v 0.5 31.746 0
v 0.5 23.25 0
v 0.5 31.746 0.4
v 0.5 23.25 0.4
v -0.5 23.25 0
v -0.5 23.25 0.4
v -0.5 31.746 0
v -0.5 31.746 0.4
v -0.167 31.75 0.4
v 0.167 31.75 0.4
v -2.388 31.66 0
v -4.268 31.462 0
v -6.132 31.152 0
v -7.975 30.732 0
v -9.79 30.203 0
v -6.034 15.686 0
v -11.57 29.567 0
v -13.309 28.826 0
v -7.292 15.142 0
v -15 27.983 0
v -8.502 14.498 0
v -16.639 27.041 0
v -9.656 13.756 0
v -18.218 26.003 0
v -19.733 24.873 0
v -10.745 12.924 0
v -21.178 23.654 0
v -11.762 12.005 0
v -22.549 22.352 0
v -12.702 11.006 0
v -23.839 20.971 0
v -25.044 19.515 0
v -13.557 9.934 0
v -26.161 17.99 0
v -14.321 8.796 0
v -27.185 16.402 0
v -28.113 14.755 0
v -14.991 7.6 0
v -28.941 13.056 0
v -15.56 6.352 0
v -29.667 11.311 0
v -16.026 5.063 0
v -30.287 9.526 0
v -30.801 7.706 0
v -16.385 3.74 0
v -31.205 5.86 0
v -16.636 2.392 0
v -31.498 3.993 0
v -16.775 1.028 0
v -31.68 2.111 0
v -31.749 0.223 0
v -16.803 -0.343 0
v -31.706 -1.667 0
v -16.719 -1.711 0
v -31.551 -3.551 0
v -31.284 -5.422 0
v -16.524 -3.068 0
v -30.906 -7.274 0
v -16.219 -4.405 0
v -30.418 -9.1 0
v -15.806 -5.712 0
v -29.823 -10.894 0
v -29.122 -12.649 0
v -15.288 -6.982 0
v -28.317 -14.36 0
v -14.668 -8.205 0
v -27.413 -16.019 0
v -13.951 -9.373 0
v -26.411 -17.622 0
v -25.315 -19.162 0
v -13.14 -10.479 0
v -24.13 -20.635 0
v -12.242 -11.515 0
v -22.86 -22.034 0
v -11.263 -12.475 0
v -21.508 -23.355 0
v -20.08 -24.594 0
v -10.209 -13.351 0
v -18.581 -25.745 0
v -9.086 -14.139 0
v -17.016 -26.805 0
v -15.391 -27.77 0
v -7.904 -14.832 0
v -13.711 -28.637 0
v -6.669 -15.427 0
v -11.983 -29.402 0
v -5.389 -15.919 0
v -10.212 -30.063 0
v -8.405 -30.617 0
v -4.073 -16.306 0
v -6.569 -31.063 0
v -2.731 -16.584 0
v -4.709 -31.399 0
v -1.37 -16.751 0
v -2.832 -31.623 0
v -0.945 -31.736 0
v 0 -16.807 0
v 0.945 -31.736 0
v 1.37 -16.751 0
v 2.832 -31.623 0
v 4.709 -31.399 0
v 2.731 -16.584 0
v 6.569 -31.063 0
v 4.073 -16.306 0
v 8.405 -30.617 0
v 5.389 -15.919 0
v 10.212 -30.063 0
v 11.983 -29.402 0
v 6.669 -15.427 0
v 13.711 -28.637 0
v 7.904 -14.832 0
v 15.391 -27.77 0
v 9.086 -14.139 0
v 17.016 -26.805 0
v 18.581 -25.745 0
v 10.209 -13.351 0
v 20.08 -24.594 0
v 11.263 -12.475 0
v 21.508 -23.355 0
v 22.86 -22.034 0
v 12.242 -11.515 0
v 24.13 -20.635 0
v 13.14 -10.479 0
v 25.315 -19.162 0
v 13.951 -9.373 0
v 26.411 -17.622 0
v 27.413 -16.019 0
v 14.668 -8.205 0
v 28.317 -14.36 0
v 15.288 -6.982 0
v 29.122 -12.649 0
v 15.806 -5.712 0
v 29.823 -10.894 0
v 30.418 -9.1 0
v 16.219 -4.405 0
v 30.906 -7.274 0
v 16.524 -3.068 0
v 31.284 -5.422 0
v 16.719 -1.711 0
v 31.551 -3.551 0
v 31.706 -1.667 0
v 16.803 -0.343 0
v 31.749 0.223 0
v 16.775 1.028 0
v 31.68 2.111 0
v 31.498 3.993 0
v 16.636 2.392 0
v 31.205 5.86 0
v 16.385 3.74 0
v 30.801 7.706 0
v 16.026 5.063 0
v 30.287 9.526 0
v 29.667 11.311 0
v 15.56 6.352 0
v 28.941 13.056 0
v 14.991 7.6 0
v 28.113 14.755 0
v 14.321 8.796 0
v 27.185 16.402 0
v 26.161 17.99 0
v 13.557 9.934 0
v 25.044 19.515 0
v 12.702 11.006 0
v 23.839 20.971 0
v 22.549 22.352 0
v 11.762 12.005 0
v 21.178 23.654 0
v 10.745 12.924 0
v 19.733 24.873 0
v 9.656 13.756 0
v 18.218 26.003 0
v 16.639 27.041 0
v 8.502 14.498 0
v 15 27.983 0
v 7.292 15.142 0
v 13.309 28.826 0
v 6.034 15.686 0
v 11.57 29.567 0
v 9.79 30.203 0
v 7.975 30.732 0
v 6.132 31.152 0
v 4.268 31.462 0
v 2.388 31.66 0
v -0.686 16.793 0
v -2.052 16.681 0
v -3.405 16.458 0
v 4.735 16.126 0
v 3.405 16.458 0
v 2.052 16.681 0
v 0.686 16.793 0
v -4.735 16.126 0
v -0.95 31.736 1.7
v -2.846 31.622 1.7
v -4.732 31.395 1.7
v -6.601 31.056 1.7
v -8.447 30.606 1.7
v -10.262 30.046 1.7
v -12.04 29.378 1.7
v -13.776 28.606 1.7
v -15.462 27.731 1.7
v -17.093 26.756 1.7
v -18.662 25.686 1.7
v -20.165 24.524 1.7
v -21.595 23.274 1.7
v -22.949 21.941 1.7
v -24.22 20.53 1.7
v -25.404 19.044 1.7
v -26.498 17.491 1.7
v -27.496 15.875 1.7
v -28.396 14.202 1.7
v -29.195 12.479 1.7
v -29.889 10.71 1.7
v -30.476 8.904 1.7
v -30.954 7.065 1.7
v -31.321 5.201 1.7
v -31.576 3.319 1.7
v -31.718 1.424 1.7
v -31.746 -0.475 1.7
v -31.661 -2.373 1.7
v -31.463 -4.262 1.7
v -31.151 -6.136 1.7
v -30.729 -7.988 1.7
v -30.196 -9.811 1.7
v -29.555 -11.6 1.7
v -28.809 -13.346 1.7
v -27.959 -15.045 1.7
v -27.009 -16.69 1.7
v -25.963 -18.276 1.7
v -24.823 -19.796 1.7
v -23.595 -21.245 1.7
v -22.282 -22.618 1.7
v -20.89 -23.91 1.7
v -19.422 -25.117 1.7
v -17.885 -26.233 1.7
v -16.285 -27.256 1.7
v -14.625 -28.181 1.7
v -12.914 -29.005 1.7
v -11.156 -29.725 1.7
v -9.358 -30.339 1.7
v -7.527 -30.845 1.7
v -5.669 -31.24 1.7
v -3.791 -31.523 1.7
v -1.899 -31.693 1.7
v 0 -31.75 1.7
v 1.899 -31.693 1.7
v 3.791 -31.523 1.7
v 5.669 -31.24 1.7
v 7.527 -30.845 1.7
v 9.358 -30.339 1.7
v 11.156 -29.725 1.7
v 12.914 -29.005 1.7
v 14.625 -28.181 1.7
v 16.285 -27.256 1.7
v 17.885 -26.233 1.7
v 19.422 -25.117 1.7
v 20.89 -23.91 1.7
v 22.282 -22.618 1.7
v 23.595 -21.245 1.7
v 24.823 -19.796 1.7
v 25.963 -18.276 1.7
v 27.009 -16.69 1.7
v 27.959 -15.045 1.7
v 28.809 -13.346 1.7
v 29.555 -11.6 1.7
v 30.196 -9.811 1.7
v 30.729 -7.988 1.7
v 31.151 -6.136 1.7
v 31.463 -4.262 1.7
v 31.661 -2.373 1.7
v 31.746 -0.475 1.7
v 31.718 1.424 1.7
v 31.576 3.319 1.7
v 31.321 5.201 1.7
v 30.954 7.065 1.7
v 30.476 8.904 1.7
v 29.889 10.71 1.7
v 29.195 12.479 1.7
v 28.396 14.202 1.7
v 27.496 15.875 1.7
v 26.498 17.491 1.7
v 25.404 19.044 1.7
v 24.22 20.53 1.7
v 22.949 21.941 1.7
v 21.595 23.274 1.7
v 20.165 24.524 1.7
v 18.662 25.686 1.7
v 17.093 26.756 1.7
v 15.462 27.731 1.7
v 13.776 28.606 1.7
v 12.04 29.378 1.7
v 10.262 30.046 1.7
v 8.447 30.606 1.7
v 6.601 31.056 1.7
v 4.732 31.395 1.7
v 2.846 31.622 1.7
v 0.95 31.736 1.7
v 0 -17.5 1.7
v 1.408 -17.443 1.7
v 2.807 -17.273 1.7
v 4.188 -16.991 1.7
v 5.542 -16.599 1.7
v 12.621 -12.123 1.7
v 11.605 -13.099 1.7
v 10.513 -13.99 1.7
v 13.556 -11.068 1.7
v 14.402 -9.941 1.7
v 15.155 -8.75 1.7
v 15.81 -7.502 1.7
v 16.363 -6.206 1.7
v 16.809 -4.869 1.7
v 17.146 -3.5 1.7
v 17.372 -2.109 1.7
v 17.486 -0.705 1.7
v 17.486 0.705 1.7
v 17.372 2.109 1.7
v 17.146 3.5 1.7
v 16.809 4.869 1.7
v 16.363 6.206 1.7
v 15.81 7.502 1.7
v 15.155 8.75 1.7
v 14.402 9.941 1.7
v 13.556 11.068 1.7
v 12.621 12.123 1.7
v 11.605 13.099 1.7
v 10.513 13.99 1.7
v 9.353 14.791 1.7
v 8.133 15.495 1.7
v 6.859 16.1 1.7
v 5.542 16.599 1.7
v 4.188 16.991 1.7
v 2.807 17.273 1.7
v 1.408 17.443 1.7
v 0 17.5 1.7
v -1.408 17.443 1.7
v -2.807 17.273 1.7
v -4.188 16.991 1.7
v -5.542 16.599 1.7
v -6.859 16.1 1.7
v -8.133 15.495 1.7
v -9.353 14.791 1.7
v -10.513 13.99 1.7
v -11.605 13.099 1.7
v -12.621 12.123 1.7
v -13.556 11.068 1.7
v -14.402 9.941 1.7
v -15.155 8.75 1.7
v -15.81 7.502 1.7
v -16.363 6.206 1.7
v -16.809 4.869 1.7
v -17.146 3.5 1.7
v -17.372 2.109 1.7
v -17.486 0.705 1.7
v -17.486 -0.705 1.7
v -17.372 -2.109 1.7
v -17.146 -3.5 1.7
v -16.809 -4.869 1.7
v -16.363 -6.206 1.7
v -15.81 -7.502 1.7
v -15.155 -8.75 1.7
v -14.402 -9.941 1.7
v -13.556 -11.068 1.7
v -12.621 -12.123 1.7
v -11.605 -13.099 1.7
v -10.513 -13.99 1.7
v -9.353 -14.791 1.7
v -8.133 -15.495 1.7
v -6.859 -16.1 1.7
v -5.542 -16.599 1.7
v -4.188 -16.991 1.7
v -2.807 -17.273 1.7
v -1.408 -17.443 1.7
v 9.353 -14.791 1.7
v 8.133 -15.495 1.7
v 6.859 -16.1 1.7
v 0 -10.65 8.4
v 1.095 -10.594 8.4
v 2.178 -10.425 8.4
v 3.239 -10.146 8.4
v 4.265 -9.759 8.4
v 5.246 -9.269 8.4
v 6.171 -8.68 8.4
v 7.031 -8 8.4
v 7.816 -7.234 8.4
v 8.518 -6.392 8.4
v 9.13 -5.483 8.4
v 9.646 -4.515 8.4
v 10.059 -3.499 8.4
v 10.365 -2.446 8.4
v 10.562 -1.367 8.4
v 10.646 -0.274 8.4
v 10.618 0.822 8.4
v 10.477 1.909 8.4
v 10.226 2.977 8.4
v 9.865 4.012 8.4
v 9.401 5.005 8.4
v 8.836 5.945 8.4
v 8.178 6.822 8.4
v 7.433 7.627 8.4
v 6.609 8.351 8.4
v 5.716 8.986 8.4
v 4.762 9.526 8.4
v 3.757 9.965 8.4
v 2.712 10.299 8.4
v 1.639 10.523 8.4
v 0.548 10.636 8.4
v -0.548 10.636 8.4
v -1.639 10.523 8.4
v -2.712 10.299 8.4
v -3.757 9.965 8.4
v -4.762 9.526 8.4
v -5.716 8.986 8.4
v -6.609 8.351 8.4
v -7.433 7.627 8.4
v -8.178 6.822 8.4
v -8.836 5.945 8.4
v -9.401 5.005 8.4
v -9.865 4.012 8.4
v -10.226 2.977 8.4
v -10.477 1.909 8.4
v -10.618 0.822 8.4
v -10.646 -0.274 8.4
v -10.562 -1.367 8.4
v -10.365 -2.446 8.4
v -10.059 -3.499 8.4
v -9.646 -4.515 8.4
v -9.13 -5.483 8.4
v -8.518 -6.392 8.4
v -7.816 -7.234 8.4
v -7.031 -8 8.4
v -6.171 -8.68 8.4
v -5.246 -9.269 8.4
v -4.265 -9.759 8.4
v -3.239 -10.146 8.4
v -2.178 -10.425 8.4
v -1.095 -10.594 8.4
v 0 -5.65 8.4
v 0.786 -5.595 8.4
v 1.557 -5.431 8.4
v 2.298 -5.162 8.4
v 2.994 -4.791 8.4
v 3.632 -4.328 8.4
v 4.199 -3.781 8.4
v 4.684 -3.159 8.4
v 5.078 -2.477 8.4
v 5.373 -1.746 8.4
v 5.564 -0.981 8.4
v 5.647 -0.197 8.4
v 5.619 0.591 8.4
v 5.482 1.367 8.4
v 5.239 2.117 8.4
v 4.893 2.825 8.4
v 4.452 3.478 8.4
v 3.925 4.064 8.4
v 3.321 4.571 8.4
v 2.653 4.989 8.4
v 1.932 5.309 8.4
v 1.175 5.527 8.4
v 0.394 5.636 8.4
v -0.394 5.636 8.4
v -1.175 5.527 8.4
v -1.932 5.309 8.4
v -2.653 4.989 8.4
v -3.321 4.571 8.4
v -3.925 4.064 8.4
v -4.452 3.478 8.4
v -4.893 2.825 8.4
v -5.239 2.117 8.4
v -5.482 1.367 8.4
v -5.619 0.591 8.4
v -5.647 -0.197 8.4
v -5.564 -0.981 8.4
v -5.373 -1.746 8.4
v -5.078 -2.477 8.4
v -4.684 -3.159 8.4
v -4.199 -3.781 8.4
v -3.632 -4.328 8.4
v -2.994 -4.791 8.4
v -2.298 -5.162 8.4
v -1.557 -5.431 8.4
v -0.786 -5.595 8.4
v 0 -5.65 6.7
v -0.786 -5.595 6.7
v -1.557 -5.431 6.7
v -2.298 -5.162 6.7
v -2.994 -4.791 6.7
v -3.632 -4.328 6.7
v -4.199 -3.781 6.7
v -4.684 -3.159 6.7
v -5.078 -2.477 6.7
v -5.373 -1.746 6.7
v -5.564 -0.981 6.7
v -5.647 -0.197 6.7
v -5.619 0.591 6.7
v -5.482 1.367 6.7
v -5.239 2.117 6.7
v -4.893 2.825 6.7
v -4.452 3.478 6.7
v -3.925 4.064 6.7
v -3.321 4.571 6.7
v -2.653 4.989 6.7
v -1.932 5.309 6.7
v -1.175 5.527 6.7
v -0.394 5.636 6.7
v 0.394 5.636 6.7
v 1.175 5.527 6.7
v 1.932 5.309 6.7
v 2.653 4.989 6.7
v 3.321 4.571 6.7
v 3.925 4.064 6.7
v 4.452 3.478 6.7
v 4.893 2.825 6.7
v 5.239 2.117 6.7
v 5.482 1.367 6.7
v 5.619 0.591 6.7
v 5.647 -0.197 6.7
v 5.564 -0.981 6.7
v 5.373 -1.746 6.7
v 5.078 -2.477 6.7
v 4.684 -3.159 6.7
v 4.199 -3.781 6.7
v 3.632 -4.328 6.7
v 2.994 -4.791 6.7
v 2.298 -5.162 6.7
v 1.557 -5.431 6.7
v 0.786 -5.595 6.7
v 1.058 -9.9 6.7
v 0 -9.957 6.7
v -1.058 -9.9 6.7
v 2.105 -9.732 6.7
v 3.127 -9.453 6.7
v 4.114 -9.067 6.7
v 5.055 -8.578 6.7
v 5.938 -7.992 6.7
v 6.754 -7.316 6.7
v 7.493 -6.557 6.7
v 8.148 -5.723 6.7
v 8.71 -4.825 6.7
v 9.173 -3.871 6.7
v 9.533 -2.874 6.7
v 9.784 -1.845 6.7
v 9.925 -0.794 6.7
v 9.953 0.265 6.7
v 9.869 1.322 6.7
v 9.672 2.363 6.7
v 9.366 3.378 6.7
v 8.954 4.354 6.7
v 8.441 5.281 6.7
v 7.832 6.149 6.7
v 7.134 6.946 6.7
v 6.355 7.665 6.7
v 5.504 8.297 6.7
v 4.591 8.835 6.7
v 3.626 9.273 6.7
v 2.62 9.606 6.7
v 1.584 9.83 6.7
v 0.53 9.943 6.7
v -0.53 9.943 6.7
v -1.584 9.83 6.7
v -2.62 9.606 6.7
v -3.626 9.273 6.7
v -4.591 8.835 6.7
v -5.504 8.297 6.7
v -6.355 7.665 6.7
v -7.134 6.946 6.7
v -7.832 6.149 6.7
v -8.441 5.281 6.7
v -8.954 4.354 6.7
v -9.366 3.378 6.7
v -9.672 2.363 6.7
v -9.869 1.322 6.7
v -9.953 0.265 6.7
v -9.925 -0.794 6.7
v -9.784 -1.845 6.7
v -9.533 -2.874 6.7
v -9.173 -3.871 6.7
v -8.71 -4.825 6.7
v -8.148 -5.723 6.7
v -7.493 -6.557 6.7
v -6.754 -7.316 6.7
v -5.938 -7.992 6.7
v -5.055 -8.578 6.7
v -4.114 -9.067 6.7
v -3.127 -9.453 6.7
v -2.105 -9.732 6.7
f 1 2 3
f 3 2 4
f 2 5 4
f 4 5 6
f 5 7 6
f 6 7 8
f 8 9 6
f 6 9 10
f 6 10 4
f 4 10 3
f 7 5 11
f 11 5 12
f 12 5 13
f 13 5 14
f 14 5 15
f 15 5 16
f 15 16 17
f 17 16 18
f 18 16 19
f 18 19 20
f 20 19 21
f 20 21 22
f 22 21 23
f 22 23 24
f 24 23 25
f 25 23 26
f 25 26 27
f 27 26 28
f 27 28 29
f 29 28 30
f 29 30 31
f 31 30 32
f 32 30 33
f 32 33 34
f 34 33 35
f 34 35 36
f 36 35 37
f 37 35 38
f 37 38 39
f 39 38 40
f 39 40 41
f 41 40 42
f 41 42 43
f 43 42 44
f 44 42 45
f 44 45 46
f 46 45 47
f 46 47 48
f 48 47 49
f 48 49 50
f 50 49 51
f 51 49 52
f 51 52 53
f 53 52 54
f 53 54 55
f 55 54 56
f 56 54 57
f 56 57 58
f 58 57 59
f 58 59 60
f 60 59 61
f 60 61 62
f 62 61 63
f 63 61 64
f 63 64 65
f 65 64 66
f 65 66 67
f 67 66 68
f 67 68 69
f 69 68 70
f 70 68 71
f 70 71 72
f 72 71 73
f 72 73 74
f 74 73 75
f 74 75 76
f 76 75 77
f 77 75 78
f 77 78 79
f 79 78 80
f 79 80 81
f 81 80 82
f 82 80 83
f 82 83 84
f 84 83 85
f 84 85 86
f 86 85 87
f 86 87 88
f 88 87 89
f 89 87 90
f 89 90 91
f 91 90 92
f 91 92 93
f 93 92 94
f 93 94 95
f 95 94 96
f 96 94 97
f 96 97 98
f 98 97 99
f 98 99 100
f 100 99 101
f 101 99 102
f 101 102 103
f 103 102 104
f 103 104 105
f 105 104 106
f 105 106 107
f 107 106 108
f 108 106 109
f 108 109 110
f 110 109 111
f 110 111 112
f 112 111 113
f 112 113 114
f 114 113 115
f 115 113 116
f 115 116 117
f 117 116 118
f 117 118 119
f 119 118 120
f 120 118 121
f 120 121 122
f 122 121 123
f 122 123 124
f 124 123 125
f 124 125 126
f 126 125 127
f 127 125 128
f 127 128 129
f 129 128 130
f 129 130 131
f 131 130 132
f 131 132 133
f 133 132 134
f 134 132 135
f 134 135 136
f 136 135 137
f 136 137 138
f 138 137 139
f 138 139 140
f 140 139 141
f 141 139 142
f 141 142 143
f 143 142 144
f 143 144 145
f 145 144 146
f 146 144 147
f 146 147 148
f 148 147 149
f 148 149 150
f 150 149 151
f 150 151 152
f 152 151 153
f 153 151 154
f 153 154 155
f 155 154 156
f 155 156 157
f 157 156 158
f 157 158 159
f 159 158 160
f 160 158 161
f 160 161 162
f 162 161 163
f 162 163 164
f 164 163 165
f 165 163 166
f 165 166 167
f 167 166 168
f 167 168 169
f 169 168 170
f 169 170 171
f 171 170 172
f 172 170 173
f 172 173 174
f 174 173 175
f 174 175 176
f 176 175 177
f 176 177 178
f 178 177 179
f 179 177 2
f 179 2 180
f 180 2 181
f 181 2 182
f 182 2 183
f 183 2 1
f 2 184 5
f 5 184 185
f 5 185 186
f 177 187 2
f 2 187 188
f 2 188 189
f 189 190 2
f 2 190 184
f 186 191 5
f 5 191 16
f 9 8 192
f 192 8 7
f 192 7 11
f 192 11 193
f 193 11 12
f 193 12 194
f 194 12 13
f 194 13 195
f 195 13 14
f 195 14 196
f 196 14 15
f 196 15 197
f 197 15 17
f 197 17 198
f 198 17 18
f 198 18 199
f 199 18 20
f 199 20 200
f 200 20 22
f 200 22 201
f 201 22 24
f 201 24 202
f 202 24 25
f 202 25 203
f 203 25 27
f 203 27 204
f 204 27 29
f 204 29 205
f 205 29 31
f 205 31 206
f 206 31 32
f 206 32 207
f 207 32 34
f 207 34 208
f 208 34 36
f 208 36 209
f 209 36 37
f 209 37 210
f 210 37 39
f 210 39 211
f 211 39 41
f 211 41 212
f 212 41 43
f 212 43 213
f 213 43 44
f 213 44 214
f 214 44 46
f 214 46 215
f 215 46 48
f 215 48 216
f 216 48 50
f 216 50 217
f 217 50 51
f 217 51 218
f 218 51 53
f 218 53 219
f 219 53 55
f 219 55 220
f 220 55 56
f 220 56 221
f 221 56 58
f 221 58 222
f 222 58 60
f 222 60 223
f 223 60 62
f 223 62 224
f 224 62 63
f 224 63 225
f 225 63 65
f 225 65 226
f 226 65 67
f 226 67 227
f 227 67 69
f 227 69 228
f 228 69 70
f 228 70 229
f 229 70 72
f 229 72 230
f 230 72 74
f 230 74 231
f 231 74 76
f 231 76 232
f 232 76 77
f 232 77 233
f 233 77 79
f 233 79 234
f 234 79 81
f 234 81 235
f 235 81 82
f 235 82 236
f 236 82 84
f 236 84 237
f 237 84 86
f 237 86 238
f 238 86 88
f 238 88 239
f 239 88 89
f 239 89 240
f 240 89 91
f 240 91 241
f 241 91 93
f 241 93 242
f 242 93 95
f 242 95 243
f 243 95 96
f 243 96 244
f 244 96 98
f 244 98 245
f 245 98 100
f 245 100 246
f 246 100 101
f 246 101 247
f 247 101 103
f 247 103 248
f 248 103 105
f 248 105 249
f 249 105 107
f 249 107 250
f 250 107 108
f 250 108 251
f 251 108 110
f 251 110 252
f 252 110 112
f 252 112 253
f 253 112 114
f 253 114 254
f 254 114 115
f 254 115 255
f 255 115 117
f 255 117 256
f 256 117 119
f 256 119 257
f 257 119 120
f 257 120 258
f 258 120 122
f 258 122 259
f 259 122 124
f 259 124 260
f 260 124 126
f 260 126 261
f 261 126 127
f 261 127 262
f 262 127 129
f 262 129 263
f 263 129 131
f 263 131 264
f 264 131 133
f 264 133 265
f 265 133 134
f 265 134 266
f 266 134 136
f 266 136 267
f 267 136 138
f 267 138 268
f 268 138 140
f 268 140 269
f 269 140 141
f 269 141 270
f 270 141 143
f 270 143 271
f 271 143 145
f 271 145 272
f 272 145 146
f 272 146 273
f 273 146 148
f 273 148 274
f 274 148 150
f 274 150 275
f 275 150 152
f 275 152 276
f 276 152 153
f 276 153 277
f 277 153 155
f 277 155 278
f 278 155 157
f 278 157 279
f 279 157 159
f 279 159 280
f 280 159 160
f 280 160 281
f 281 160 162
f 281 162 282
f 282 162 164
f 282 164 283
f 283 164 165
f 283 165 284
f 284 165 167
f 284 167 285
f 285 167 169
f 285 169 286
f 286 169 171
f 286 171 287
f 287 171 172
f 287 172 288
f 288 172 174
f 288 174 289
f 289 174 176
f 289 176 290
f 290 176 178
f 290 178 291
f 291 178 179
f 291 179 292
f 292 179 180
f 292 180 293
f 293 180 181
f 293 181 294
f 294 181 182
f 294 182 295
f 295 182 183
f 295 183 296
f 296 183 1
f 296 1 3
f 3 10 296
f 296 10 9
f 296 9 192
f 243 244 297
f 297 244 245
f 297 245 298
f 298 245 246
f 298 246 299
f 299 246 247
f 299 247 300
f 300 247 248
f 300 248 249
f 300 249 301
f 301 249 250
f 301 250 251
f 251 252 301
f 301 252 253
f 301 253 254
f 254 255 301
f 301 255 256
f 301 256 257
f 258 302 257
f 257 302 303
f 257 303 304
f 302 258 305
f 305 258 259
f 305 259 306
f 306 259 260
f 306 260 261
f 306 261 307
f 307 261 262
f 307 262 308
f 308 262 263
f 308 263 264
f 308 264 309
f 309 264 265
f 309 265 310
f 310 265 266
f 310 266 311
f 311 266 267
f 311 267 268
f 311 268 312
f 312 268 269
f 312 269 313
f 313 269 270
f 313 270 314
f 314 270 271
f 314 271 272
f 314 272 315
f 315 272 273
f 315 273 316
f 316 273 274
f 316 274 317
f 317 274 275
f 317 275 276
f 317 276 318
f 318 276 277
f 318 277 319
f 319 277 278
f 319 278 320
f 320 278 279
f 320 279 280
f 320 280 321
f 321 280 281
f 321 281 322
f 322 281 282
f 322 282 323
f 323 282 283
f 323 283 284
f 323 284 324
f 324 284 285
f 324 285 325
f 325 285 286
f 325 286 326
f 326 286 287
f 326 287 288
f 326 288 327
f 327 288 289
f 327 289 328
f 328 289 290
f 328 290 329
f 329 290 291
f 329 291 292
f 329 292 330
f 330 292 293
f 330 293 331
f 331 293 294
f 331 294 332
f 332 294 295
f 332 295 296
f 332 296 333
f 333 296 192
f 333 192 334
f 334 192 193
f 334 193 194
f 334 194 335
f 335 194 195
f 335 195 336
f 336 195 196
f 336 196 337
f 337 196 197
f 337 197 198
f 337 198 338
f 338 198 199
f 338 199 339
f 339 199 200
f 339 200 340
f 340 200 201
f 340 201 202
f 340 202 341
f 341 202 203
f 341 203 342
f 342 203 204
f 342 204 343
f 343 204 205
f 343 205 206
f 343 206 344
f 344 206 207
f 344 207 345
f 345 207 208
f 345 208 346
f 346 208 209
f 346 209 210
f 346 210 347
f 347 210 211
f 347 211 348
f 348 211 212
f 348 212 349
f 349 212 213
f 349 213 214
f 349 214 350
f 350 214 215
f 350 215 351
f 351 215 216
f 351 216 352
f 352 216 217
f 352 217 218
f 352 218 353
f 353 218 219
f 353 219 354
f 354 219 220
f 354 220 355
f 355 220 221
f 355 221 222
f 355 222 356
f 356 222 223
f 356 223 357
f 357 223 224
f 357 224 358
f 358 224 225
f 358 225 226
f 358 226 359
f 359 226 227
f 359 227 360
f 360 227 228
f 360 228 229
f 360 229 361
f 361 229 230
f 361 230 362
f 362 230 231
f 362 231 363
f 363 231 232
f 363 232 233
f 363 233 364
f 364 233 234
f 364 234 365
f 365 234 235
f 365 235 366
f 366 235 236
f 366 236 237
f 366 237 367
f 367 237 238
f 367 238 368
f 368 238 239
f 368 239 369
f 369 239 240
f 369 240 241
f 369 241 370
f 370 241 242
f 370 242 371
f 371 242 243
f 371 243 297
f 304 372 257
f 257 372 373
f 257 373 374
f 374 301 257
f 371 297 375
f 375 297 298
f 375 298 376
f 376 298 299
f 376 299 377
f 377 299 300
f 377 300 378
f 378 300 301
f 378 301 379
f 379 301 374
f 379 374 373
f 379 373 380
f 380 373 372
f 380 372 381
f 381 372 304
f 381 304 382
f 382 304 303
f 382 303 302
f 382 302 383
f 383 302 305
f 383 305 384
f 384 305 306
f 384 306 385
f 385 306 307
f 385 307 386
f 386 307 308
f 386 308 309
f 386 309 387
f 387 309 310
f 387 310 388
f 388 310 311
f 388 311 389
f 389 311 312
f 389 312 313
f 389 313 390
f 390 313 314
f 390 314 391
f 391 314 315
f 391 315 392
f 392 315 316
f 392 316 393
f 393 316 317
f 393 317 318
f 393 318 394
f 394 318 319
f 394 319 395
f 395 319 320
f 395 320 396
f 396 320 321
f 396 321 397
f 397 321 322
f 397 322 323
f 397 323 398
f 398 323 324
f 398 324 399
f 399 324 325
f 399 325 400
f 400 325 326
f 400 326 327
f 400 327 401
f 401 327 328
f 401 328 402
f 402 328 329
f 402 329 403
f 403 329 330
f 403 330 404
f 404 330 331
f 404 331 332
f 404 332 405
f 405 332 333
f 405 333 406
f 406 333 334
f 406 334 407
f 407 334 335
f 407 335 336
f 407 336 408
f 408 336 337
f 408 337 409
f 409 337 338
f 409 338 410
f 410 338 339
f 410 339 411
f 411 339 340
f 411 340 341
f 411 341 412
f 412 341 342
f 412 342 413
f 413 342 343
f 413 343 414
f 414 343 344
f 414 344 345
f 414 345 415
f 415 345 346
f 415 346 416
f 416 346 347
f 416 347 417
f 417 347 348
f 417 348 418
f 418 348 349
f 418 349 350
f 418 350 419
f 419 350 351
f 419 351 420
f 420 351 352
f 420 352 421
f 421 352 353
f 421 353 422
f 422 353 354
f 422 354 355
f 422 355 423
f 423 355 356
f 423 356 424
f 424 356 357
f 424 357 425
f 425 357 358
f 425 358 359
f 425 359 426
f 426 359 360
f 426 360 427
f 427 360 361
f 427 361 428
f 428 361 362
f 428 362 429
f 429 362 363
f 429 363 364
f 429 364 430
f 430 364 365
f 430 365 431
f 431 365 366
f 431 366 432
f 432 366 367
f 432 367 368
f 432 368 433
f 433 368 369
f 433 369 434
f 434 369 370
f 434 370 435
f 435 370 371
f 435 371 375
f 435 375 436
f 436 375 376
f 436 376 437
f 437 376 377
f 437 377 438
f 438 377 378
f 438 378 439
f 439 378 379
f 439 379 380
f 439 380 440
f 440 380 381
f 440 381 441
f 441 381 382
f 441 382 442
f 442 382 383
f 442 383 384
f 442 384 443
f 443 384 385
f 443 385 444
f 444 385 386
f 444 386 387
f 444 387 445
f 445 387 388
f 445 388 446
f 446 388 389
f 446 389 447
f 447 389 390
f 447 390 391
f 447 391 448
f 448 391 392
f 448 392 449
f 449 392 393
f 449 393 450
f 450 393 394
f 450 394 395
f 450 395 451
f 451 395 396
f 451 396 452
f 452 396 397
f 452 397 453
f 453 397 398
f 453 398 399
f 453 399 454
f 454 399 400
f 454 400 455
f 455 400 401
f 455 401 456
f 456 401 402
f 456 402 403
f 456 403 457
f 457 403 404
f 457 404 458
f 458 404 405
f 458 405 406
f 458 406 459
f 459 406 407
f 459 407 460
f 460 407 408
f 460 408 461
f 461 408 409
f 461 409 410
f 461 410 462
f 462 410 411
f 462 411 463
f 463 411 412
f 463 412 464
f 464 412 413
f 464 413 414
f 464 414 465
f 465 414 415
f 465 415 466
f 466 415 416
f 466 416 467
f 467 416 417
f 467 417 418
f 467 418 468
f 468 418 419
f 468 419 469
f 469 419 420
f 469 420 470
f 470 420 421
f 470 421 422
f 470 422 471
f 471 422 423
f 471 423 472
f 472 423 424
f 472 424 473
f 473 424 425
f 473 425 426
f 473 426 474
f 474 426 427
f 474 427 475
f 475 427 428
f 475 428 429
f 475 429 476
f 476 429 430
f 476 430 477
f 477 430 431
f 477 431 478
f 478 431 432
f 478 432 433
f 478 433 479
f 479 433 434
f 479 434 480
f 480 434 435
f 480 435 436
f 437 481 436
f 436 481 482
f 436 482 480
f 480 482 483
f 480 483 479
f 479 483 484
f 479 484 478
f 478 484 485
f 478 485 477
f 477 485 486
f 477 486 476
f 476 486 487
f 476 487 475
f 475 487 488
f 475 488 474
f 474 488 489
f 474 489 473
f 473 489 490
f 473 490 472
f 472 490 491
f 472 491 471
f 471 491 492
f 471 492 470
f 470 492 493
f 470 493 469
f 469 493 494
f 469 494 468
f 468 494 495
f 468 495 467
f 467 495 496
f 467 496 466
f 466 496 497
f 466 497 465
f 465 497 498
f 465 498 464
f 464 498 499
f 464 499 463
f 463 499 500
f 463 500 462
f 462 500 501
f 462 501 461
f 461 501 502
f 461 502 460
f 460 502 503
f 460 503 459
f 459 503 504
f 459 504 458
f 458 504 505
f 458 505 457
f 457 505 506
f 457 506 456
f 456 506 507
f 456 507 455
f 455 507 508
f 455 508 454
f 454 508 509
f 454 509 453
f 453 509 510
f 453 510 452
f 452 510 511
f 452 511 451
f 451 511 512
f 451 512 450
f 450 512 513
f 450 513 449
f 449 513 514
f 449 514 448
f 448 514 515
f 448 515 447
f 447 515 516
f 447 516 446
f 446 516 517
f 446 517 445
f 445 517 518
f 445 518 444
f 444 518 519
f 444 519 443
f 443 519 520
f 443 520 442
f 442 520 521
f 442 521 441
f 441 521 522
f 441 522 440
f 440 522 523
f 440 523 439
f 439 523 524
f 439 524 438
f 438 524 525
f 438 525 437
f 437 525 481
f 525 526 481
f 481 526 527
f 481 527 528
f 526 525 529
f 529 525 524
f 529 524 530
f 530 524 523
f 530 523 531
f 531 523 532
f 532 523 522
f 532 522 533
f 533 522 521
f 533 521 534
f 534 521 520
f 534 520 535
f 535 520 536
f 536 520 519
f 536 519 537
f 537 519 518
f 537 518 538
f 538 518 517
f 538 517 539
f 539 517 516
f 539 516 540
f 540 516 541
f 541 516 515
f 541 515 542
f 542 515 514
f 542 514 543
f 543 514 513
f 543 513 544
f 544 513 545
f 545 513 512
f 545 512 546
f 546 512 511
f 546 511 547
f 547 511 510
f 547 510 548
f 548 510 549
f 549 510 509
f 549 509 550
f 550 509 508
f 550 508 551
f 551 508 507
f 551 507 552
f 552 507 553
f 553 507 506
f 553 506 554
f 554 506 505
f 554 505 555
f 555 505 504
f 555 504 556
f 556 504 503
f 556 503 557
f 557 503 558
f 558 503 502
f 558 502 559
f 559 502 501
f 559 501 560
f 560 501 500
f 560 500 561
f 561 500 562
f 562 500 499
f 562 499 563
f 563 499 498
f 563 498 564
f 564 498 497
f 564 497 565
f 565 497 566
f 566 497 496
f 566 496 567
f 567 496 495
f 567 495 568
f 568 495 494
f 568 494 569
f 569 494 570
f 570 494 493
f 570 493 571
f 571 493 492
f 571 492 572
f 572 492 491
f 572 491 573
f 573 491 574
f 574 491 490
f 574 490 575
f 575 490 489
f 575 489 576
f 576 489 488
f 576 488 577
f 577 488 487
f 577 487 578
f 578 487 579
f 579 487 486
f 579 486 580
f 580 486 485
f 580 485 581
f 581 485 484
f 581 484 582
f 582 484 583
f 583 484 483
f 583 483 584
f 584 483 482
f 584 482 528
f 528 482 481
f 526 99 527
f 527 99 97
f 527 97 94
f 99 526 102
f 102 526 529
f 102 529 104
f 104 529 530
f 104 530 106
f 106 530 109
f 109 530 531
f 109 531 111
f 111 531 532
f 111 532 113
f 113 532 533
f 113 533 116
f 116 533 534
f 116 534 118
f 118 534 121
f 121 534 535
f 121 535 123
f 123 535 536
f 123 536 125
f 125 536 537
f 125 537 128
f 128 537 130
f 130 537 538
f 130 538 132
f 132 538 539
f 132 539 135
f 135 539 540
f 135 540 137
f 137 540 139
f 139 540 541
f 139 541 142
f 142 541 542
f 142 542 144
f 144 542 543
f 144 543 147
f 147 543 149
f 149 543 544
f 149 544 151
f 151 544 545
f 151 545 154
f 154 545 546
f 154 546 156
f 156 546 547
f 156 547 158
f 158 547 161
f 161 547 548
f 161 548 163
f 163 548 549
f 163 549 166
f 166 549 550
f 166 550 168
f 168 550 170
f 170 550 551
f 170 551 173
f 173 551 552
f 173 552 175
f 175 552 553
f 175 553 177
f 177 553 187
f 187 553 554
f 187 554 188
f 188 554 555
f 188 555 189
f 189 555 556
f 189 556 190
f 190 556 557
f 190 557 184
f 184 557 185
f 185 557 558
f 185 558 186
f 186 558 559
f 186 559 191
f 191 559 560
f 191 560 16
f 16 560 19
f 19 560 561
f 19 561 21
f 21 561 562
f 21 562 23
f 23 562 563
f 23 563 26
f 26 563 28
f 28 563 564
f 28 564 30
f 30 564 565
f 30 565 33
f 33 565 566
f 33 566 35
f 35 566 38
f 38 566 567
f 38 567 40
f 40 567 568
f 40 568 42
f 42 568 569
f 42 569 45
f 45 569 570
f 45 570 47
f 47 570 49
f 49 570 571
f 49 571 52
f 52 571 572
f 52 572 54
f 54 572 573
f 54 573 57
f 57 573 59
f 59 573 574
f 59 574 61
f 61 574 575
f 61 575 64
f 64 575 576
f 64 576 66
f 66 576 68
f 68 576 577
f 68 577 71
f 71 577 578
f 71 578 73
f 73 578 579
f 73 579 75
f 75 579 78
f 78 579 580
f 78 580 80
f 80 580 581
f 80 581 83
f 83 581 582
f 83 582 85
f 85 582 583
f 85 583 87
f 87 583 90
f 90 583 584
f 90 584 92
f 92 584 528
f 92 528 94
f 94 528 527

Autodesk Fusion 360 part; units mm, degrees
sketch "Sketch1" plane through (0, 0, 0) normal (1, 0, 0) x (0, 1, 0)
  line L0 (-31.75, 0) -> (31.75, 0) construction
  line L1 (-31.75, 0) -> (-31.75, 1.7)
  line L2 (31.75, 0) -> (31.75, 1.7)
  line L3 (0, 0) -> (0, 8.4) construction
  line L4 (-5.65, 8.4) -> (5.65, 8.4) construction
  line L5 (-10.65, 8.4) -> (10.65, 8.4) construction
  line L6 (-5.65, 8.4) -> (-10.65, 8.4)
  line L7 (5.65, 8.4) -> (10.65, 8.4)
  line L8 (-17.5, 1.7) -> (17.5, 1.7) construction
  line L9 (-31.75, 1.7) -> (-17.5, 1.7)
  line L10 (-17.5, 1.7) -> (-10.65, 8.4)
  line L11 (31.75, 1.7) -> (17.5, 1.7)
  line L12 (17.5, 1.7) -> (10.65, 8.4)
  line L13 (-30.05, 0) -> (-16.8068, 0)
  line L14 (-16.8068, 0) -> (-9.9568, 6.7)
  line L15 (-5.65, 6.7) -> (-9.9568, 6.7)
  line L16 (30.05, 0) -> (16.8068, 0)
  line L17 (16.8068, 0) -> (9.9568, 6.7)
  line L18 (5.65, 6.7) -> (9.9568, 6.7)
  line L19 (-5.65, 6.7) -> (-5.65, 8.4)
  line L20 (5.65, 6.7) -> (5.65, 8.4)
  line L21 (-30.05, 0) -> (-31.75, 0)
  line L22 (30.05, 0) -> (31.75, 0)
  dimension "d1" = 63.5
  dimension "d2" = 1.7
  dimension "d3" = 1.7
  dimension "d4" = 8.4
  dimension "d5" = 11.3
  dimension "d6" = 21.3
  dimension "d7" = 5
  dimension "d8" = 5
  dimension "d9" = 35
  dimension "d10" = 1.7
  dimension "d11" = -1.7
revolve "Revolve1" add sketch "Sketch1" angle 360 about axis through (0, 0, 0) along (0, 0, 1) contours L1 L6 L9 L10 L13 L14 L15 L19 L21
sketch "Sketch2" plane through (0, 0, 0) normal (0, 0, -1) x (1, 0, 0)
  circle A0 centre (0, 0) radius 16.8068
  circle A1 centre (0, 0) radius 31.75
  line L0 (0.5, -31.75) -> (-0.5, -31.75)
  line L1 (-0.5, -31.75) -> (-0.5, -23.25)
  line L2 (-0.5, -23.25) -> (0.5, -23.25)
  line L3 (0.5, -23.25) -> (0.5, -31.75)
  circle A2 centre (0, 0) radius 31.75
  line L4 (0, -31.75) -> (0, 31.75) construction
  dimension "d13" = 1
  dimension "d14" = 8.5
  dimension "d15" = 63.5
extrude "Extrude1" cut sketch "Sketch2" against normal blind 0.4 contours A1 L1 L2 L3 A2 picked at (0, -26.0833)
